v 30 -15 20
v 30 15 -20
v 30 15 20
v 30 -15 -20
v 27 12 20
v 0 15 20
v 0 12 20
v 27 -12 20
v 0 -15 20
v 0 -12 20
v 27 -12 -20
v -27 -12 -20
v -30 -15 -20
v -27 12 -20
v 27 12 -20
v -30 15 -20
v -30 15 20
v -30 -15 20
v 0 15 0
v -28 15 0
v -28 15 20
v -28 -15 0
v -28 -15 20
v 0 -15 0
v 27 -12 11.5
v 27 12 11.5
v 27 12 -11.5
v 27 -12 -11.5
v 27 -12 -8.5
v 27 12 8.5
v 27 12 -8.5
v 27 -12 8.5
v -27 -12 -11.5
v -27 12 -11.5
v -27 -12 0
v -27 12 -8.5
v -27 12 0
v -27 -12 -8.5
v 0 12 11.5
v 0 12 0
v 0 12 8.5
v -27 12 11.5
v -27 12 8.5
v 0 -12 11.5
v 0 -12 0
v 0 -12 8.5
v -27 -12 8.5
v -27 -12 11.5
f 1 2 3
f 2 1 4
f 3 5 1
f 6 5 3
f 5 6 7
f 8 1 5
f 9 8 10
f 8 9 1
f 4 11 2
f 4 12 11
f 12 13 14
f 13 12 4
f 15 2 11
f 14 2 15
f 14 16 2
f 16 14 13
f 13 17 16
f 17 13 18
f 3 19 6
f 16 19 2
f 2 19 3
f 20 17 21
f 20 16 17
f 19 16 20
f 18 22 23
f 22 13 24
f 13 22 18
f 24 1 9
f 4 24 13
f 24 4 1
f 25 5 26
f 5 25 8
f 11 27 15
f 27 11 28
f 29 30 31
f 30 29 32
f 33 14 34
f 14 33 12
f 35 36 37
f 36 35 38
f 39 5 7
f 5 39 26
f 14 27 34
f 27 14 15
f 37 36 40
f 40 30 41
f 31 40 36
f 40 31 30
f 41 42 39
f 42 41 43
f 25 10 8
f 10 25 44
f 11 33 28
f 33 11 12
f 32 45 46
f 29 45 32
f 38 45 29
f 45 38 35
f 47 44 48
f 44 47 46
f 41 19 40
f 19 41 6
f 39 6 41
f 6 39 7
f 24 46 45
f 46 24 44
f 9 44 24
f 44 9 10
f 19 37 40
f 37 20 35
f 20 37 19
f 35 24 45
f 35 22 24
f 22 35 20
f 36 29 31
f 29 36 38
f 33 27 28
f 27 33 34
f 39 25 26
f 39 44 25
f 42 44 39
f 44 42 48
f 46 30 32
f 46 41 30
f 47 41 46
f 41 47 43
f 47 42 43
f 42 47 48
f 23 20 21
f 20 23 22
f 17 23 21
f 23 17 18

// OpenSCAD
// Parameters for the model
outer_frame_length = 60;  // Length of the outer frame
outer_frame_width = 30;   // Width of the outer frame
outer_frame_height = 40;  // Height of the outer frame
outer_frame_thickness = 3; // Thickness of the outer frame walls

inner_divider_thickness = 3; // Thickness of the inner dividers
inner_divider_spacing = outer_frame_height / 2; // Spacing between dividers (adjusted to split into two equal sections)

side_wall_thickness = 2; // Adjusted thickness of the side walls

// Module for the outer frame
module outer_frame() {
    difference() {
        // Outer block
        cube([outer_frame_length, outer_frame_width, outer_frame_height], center = true);
        // Hollowed-out inner block with larger front and back openings
        translate([0, 0, 0])
            cube([outer_frame_length - 2 * outer_frame_thickness, 
                  outer_frame_width - 2 * outer_frame_thickness, 
                  outer_frame_height], center = true);
        // Front opening
        translate([-outer_frame_length / 2, -outer_frame_width / 2, 0])
            cube([outer_frame_length / 2, outer_frame_width, outer_frame_height], center = false);
        // Back opening
        translate([outer_frame_length / 2, -outer_frame_width / 2, 0])
            cube([outer_frame_length / 2, outer_frame_width, outer_frame_height], center = false);
    }
}

// Module for an inner divider
module inner_divider(position_z) {
    translate([0, 0, position_z])
        cube([outer_frame_length - 2 * outer_frame_thickness, 
              outer_frame_width - 2 * outer_frame_thickness, 
              inner_divider_thickness], center = true);
}

// Module for a side wall
module side_wall(position_x) {
    translate([position_x, 0, 0])
        cube([side_wall_thickness, 
              outer_frame_width, 
              outer_frame_height], center = true);
}

// Assemble the model
module flexible_coupling() {
    // Layer 1: Outer frame
    outer_frame();
    
    // Layer 2: Inner dividers (adjusted to split into two equal sections)
    inner_divider(-inner_divider_spacing / 2);
    inner_divider(inner_divider_spacing / 2);
    
    // Layer 3: Side walls (adjusted thickness and alignment)
    side_wall(-outer_frame_length / 2 + side_wall_thickness / 2);
    side_wall(outer_frame_length / 2 - side_wall_thickness / 2);
}

// Render the model
flexible_coupling();
